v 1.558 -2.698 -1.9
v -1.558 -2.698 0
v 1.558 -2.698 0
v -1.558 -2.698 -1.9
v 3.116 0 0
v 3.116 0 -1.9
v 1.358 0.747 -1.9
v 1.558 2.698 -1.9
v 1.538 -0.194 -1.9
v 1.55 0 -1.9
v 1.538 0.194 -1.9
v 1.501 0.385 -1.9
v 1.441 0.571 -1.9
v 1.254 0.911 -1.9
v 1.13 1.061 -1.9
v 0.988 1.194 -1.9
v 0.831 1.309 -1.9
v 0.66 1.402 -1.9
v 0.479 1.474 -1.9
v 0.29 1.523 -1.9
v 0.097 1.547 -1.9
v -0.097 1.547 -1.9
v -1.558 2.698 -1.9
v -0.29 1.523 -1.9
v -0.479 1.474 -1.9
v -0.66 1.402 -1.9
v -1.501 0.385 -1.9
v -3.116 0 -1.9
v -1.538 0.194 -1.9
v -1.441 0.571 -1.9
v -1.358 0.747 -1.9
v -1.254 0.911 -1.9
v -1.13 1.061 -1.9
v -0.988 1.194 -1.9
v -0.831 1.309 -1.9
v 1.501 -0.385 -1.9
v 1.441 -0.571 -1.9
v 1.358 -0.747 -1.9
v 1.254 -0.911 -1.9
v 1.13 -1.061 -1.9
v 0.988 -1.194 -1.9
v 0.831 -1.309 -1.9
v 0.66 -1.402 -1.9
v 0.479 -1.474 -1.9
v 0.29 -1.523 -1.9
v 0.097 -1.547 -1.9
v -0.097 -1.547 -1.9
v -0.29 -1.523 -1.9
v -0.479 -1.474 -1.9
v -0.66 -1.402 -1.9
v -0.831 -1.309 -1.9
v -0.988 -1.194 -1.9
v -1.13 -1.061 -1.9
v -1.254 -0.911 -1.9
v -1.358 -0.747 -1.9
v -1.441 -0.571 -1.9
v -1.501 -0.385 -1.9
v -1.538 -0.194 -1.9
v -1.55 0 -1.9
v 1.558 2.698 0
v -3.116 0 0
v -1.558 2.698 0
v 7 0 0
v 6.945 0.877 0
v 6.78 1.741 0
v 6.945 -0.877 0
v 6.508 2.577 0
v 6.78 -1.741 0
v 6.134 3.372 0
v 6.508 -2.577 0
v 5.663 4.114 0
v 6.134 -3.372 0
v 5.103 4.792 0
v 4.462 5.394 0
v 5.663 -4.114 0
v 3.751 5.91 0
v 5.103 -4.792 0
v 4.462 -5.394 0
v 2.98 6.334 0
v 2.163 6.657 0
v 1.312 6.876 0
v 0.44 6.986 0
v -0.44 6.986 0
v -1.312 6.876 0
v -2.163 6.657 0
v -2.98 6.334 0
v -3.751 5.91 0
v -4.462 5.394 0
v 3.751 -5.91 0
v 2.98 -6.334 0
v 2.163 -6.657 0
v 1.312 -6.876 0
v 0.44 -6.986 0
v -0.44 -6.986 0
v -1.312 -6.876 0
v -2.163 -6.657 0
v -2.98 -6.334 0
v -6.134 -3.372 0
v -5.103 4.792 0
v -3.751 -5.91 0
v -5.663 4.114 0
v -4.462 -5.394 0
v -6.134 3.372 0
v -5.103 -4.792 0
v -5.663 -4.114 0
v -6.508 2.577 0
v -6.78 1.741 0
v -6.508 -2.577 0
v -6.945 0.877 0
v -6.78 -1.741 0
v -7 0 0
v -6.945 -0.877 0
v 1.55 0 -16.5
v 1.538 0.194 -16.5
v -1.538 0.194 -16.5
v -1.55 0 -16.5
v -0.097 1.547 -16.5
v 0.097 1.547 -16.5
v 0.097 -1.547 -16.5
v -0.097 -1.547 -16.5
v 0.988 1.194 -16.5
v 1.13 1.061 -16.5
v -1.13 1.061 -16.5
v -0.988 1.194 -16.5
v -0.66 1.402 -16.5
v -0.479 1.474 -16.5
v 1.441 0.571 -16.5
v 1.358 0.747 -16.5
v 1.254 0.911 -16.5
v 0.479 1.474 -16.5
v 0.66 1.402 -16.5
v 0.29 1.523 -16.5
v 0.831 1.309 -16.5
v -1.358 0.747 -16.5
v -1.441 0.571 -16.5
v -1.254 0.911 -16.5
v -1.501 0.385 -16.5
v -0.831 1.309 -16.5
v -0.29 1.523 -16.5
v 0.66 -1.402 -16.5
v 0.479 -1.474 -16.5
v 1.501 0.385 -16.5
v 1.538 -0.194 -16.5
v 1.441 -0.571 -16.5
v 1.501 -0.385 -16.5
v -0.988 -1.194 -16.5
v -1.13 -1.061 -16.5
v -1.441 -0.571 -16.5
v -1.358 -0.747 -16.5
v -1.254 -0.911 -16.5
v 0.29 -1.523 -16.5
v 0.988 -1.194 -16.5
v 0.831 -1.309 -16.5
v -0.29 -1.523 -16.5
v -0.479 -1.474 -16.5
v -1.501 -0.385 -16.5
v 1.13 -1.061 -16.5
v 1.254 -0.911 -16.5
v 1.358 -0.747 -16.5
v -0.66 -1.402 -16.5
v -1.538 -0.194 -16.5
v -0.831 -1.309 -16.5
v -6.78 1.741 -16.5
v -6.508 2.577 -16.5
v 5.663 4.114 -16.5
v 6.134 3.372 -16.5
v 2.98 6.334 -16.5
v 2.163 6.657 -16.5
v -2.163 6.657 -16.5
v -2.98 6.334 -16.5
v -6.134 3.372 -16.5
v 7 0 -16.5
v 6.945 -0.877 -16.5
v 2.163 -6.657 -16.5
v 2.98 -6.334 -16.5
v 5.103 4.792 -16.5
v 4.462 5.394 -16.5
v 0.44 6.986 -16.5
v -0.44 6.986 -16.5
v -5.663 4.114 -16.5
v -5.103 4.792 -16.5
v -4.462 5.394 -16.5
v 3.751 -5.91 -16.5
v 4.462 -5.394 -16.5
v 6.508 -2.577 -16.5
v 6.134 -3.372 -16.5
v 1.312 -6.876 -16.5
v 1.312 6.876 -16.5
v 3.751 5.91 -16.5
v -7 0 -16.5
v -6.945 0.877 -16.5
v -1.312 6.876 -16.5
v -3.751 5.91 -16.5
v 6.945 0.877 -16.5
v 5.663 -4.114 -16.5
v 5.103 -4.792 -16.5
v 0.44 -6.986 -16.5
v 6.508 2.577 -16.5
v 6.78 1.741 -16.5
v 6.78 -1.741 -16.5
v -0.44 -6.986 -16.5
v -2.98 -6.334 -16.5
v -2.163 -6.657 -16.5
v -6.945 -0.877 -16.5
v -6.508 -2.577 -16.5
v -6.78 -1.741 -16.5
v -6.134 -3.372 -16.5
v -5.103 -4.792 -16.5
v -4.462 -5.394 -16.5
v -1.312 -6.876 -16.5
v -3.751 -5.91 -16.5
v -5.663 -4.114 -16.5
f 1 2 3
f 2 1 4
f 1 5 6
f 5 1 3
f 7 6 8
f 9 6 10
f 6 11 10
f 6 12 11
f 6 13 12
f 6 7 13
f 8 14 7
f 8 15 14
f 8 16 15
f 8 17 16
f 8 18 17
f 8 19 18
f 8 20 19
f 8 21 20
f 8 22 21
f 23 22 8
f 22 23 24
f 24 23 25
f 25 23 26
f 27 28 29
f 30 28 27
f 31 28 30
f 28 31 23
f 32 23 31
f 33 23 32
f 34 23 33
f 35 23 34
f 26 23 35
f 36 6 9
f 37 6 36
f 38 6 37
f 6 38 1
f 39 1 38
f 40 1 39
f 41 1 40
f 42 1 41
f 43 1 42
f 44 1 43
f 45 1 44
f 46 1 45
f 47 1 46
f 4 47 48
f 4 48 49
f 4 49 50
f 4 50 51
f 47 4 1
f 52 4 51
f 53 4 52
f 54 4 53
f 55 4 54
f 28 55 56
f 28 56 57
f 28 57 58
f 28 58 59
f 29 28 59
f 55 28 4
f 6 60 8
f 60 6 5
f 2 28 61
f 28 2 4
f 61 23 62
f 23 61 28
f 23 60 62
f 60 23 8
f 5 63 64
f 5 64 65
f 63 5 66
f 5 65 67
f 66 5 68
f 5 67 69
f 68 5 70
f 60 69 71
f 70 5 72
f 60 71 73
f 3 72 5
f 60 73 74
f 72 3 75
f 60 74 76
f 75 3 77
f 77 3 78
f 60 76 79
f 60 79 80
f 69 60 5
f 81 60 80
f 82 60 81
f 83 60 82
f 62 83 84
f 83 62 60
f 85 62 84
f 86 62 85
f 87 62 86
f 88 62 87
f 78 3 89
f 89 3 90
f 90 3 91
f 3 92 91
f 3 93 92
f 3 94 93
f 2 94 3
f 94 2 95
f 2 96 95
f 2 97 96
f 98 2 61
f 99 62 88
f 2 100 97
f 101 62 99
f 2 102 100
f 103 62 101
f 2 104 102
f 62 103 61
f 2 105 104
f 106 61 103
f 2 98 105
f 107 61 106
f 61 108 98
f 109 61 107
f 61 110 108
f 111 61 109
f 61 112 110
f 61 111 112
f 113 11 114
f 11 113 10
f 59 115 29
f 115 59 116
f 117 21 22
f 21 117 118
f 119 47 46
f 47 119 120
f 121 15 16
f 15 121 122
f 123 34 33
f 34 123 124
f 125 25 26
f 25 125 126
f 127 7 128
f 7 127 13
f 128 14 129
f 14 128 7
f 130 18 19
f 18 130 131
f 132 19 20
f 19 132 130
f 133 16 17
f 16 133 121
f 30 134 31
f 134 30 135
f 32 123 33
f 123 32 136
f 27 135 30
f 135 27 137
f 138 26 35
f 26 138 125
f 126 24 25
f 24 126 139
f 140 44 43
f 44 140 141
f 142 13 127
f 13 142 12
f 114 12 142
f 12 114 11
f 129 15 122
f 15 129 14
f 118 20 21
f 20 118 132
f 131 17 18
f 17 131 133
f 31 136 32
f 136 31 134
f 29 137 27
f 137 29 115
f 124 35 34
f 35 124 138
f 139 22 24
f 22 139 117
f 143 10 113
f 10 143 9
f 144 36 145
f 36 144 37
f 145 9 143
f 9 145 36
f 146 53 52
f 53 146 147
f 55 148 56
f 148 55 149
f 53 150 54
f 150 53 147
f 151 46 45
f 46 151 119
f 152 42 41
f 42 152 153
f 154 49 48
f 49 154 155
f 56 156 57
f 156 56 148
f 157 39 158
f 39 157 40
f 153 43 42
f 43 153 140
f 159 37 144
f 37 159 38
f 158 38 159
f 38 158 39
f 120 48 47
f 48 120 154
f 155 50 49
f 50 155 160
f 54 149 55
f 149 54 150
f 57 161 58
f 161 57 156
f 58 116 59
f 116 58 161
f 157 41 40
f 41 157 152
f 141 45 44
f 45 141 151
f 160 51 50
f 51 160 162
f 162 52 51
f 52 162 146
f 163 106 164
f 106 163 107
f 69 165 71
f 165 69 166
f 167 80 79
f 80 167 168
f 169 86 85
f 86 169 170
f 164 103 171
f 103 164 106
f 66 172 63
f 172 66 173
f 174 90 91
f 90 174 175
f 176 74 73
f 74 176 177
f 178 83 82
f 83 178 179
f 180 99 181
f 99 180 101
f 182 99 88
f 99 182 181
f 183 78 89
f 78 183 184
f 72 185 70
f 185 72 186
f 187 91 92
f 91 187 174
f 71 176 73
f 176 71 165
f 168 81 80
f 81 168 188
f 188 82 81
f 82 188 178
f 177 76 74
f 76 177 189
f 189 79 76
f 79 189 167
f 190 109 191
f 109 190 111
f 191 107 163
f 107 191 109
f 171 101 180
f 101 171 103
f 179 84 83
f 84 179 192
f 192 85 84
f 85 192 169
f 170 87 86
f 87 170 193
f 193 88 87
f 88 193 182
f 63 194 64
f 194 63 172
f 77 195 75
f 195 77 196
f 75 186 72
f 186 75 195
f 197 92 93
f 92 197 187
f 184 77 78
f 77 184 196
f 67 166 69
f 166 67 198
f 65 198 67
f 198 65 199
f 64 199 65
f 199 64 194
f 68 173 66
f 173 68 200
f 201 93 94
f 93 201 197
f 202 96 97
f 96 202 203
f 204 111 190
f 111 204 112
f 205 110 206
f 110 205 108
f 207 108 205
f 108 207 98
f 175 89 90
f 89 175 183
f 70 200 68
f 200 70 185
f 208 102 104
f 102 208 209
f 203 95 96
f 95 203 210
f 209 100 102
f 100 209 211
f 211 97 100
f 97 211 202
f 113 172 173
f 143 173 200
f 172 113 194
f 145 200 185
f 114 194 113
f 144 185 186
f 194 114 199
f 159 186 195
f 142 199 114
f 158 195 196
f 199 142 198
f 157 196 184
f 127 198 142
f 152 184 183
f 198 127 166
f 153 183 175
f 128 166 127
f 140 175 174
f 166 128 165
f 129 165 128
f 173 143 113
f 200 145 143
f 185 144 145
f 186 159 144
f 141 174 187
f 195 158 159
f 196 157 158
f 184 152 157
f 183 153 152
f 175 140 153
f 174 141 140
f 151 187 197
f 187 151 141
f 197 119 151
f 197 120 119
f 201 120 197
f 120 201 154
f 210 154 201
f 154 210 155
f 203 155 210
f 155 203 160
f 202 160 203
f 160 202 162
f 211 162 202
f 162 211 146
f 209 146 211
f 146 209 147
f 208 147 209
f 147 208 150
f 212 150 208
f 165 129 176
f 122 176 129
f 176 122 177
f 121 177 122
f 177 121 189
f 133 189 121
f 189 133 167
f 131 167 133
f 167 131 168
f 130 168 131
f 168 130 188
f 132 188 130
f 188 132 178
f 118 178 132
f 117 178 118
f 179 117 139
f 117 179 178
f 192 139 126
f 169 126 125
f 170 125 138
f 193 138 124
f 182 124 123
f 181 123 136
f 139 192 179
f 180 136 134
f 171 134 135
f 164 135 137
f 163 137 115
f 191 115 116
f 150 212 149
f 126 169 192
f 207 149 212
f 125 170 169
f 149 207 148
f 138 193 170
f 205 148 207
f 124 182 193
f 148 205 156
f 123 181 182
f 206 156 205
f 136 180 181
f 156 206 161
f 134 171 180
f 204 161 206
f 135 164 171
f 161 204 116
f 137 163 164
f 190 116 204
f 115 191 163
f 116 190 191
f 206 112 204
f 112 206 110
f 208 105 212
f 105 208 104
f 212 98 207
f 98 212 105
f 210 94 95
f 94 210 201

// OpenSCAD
$fn = 50;

difference() {
	union() {
		translate(v = [0, 0, -16.5]) {
			cylinder(h = 16.5, r = 7.0);
		}
	}
	union() {
		translate(v = [0, 0, 0]) {
			rotate(a = [0, 0, 0]) {
				difference() {
					union() {
						translate(v = [0, 0, -1.9]) {
							linear_extrude(height = 1.9) {
								polygon(points = [[3.1158, 0.0], [1.5579000000000005, 2.698361953111554], [-1.5578999999999994, 2.6983619531115544], [-3.1158, 3.815754496783323e-16], [-1.5579000000000014, -2.6983619531115535], [1.557899999999998, -2.6983619531115552]]);
							}
						}
					}
					union();
				}
			}
		}
		#translate(v = [0, 0, -100.0]) {
			cylinder(h = 200, r = 1.55);
		}
	}
}
